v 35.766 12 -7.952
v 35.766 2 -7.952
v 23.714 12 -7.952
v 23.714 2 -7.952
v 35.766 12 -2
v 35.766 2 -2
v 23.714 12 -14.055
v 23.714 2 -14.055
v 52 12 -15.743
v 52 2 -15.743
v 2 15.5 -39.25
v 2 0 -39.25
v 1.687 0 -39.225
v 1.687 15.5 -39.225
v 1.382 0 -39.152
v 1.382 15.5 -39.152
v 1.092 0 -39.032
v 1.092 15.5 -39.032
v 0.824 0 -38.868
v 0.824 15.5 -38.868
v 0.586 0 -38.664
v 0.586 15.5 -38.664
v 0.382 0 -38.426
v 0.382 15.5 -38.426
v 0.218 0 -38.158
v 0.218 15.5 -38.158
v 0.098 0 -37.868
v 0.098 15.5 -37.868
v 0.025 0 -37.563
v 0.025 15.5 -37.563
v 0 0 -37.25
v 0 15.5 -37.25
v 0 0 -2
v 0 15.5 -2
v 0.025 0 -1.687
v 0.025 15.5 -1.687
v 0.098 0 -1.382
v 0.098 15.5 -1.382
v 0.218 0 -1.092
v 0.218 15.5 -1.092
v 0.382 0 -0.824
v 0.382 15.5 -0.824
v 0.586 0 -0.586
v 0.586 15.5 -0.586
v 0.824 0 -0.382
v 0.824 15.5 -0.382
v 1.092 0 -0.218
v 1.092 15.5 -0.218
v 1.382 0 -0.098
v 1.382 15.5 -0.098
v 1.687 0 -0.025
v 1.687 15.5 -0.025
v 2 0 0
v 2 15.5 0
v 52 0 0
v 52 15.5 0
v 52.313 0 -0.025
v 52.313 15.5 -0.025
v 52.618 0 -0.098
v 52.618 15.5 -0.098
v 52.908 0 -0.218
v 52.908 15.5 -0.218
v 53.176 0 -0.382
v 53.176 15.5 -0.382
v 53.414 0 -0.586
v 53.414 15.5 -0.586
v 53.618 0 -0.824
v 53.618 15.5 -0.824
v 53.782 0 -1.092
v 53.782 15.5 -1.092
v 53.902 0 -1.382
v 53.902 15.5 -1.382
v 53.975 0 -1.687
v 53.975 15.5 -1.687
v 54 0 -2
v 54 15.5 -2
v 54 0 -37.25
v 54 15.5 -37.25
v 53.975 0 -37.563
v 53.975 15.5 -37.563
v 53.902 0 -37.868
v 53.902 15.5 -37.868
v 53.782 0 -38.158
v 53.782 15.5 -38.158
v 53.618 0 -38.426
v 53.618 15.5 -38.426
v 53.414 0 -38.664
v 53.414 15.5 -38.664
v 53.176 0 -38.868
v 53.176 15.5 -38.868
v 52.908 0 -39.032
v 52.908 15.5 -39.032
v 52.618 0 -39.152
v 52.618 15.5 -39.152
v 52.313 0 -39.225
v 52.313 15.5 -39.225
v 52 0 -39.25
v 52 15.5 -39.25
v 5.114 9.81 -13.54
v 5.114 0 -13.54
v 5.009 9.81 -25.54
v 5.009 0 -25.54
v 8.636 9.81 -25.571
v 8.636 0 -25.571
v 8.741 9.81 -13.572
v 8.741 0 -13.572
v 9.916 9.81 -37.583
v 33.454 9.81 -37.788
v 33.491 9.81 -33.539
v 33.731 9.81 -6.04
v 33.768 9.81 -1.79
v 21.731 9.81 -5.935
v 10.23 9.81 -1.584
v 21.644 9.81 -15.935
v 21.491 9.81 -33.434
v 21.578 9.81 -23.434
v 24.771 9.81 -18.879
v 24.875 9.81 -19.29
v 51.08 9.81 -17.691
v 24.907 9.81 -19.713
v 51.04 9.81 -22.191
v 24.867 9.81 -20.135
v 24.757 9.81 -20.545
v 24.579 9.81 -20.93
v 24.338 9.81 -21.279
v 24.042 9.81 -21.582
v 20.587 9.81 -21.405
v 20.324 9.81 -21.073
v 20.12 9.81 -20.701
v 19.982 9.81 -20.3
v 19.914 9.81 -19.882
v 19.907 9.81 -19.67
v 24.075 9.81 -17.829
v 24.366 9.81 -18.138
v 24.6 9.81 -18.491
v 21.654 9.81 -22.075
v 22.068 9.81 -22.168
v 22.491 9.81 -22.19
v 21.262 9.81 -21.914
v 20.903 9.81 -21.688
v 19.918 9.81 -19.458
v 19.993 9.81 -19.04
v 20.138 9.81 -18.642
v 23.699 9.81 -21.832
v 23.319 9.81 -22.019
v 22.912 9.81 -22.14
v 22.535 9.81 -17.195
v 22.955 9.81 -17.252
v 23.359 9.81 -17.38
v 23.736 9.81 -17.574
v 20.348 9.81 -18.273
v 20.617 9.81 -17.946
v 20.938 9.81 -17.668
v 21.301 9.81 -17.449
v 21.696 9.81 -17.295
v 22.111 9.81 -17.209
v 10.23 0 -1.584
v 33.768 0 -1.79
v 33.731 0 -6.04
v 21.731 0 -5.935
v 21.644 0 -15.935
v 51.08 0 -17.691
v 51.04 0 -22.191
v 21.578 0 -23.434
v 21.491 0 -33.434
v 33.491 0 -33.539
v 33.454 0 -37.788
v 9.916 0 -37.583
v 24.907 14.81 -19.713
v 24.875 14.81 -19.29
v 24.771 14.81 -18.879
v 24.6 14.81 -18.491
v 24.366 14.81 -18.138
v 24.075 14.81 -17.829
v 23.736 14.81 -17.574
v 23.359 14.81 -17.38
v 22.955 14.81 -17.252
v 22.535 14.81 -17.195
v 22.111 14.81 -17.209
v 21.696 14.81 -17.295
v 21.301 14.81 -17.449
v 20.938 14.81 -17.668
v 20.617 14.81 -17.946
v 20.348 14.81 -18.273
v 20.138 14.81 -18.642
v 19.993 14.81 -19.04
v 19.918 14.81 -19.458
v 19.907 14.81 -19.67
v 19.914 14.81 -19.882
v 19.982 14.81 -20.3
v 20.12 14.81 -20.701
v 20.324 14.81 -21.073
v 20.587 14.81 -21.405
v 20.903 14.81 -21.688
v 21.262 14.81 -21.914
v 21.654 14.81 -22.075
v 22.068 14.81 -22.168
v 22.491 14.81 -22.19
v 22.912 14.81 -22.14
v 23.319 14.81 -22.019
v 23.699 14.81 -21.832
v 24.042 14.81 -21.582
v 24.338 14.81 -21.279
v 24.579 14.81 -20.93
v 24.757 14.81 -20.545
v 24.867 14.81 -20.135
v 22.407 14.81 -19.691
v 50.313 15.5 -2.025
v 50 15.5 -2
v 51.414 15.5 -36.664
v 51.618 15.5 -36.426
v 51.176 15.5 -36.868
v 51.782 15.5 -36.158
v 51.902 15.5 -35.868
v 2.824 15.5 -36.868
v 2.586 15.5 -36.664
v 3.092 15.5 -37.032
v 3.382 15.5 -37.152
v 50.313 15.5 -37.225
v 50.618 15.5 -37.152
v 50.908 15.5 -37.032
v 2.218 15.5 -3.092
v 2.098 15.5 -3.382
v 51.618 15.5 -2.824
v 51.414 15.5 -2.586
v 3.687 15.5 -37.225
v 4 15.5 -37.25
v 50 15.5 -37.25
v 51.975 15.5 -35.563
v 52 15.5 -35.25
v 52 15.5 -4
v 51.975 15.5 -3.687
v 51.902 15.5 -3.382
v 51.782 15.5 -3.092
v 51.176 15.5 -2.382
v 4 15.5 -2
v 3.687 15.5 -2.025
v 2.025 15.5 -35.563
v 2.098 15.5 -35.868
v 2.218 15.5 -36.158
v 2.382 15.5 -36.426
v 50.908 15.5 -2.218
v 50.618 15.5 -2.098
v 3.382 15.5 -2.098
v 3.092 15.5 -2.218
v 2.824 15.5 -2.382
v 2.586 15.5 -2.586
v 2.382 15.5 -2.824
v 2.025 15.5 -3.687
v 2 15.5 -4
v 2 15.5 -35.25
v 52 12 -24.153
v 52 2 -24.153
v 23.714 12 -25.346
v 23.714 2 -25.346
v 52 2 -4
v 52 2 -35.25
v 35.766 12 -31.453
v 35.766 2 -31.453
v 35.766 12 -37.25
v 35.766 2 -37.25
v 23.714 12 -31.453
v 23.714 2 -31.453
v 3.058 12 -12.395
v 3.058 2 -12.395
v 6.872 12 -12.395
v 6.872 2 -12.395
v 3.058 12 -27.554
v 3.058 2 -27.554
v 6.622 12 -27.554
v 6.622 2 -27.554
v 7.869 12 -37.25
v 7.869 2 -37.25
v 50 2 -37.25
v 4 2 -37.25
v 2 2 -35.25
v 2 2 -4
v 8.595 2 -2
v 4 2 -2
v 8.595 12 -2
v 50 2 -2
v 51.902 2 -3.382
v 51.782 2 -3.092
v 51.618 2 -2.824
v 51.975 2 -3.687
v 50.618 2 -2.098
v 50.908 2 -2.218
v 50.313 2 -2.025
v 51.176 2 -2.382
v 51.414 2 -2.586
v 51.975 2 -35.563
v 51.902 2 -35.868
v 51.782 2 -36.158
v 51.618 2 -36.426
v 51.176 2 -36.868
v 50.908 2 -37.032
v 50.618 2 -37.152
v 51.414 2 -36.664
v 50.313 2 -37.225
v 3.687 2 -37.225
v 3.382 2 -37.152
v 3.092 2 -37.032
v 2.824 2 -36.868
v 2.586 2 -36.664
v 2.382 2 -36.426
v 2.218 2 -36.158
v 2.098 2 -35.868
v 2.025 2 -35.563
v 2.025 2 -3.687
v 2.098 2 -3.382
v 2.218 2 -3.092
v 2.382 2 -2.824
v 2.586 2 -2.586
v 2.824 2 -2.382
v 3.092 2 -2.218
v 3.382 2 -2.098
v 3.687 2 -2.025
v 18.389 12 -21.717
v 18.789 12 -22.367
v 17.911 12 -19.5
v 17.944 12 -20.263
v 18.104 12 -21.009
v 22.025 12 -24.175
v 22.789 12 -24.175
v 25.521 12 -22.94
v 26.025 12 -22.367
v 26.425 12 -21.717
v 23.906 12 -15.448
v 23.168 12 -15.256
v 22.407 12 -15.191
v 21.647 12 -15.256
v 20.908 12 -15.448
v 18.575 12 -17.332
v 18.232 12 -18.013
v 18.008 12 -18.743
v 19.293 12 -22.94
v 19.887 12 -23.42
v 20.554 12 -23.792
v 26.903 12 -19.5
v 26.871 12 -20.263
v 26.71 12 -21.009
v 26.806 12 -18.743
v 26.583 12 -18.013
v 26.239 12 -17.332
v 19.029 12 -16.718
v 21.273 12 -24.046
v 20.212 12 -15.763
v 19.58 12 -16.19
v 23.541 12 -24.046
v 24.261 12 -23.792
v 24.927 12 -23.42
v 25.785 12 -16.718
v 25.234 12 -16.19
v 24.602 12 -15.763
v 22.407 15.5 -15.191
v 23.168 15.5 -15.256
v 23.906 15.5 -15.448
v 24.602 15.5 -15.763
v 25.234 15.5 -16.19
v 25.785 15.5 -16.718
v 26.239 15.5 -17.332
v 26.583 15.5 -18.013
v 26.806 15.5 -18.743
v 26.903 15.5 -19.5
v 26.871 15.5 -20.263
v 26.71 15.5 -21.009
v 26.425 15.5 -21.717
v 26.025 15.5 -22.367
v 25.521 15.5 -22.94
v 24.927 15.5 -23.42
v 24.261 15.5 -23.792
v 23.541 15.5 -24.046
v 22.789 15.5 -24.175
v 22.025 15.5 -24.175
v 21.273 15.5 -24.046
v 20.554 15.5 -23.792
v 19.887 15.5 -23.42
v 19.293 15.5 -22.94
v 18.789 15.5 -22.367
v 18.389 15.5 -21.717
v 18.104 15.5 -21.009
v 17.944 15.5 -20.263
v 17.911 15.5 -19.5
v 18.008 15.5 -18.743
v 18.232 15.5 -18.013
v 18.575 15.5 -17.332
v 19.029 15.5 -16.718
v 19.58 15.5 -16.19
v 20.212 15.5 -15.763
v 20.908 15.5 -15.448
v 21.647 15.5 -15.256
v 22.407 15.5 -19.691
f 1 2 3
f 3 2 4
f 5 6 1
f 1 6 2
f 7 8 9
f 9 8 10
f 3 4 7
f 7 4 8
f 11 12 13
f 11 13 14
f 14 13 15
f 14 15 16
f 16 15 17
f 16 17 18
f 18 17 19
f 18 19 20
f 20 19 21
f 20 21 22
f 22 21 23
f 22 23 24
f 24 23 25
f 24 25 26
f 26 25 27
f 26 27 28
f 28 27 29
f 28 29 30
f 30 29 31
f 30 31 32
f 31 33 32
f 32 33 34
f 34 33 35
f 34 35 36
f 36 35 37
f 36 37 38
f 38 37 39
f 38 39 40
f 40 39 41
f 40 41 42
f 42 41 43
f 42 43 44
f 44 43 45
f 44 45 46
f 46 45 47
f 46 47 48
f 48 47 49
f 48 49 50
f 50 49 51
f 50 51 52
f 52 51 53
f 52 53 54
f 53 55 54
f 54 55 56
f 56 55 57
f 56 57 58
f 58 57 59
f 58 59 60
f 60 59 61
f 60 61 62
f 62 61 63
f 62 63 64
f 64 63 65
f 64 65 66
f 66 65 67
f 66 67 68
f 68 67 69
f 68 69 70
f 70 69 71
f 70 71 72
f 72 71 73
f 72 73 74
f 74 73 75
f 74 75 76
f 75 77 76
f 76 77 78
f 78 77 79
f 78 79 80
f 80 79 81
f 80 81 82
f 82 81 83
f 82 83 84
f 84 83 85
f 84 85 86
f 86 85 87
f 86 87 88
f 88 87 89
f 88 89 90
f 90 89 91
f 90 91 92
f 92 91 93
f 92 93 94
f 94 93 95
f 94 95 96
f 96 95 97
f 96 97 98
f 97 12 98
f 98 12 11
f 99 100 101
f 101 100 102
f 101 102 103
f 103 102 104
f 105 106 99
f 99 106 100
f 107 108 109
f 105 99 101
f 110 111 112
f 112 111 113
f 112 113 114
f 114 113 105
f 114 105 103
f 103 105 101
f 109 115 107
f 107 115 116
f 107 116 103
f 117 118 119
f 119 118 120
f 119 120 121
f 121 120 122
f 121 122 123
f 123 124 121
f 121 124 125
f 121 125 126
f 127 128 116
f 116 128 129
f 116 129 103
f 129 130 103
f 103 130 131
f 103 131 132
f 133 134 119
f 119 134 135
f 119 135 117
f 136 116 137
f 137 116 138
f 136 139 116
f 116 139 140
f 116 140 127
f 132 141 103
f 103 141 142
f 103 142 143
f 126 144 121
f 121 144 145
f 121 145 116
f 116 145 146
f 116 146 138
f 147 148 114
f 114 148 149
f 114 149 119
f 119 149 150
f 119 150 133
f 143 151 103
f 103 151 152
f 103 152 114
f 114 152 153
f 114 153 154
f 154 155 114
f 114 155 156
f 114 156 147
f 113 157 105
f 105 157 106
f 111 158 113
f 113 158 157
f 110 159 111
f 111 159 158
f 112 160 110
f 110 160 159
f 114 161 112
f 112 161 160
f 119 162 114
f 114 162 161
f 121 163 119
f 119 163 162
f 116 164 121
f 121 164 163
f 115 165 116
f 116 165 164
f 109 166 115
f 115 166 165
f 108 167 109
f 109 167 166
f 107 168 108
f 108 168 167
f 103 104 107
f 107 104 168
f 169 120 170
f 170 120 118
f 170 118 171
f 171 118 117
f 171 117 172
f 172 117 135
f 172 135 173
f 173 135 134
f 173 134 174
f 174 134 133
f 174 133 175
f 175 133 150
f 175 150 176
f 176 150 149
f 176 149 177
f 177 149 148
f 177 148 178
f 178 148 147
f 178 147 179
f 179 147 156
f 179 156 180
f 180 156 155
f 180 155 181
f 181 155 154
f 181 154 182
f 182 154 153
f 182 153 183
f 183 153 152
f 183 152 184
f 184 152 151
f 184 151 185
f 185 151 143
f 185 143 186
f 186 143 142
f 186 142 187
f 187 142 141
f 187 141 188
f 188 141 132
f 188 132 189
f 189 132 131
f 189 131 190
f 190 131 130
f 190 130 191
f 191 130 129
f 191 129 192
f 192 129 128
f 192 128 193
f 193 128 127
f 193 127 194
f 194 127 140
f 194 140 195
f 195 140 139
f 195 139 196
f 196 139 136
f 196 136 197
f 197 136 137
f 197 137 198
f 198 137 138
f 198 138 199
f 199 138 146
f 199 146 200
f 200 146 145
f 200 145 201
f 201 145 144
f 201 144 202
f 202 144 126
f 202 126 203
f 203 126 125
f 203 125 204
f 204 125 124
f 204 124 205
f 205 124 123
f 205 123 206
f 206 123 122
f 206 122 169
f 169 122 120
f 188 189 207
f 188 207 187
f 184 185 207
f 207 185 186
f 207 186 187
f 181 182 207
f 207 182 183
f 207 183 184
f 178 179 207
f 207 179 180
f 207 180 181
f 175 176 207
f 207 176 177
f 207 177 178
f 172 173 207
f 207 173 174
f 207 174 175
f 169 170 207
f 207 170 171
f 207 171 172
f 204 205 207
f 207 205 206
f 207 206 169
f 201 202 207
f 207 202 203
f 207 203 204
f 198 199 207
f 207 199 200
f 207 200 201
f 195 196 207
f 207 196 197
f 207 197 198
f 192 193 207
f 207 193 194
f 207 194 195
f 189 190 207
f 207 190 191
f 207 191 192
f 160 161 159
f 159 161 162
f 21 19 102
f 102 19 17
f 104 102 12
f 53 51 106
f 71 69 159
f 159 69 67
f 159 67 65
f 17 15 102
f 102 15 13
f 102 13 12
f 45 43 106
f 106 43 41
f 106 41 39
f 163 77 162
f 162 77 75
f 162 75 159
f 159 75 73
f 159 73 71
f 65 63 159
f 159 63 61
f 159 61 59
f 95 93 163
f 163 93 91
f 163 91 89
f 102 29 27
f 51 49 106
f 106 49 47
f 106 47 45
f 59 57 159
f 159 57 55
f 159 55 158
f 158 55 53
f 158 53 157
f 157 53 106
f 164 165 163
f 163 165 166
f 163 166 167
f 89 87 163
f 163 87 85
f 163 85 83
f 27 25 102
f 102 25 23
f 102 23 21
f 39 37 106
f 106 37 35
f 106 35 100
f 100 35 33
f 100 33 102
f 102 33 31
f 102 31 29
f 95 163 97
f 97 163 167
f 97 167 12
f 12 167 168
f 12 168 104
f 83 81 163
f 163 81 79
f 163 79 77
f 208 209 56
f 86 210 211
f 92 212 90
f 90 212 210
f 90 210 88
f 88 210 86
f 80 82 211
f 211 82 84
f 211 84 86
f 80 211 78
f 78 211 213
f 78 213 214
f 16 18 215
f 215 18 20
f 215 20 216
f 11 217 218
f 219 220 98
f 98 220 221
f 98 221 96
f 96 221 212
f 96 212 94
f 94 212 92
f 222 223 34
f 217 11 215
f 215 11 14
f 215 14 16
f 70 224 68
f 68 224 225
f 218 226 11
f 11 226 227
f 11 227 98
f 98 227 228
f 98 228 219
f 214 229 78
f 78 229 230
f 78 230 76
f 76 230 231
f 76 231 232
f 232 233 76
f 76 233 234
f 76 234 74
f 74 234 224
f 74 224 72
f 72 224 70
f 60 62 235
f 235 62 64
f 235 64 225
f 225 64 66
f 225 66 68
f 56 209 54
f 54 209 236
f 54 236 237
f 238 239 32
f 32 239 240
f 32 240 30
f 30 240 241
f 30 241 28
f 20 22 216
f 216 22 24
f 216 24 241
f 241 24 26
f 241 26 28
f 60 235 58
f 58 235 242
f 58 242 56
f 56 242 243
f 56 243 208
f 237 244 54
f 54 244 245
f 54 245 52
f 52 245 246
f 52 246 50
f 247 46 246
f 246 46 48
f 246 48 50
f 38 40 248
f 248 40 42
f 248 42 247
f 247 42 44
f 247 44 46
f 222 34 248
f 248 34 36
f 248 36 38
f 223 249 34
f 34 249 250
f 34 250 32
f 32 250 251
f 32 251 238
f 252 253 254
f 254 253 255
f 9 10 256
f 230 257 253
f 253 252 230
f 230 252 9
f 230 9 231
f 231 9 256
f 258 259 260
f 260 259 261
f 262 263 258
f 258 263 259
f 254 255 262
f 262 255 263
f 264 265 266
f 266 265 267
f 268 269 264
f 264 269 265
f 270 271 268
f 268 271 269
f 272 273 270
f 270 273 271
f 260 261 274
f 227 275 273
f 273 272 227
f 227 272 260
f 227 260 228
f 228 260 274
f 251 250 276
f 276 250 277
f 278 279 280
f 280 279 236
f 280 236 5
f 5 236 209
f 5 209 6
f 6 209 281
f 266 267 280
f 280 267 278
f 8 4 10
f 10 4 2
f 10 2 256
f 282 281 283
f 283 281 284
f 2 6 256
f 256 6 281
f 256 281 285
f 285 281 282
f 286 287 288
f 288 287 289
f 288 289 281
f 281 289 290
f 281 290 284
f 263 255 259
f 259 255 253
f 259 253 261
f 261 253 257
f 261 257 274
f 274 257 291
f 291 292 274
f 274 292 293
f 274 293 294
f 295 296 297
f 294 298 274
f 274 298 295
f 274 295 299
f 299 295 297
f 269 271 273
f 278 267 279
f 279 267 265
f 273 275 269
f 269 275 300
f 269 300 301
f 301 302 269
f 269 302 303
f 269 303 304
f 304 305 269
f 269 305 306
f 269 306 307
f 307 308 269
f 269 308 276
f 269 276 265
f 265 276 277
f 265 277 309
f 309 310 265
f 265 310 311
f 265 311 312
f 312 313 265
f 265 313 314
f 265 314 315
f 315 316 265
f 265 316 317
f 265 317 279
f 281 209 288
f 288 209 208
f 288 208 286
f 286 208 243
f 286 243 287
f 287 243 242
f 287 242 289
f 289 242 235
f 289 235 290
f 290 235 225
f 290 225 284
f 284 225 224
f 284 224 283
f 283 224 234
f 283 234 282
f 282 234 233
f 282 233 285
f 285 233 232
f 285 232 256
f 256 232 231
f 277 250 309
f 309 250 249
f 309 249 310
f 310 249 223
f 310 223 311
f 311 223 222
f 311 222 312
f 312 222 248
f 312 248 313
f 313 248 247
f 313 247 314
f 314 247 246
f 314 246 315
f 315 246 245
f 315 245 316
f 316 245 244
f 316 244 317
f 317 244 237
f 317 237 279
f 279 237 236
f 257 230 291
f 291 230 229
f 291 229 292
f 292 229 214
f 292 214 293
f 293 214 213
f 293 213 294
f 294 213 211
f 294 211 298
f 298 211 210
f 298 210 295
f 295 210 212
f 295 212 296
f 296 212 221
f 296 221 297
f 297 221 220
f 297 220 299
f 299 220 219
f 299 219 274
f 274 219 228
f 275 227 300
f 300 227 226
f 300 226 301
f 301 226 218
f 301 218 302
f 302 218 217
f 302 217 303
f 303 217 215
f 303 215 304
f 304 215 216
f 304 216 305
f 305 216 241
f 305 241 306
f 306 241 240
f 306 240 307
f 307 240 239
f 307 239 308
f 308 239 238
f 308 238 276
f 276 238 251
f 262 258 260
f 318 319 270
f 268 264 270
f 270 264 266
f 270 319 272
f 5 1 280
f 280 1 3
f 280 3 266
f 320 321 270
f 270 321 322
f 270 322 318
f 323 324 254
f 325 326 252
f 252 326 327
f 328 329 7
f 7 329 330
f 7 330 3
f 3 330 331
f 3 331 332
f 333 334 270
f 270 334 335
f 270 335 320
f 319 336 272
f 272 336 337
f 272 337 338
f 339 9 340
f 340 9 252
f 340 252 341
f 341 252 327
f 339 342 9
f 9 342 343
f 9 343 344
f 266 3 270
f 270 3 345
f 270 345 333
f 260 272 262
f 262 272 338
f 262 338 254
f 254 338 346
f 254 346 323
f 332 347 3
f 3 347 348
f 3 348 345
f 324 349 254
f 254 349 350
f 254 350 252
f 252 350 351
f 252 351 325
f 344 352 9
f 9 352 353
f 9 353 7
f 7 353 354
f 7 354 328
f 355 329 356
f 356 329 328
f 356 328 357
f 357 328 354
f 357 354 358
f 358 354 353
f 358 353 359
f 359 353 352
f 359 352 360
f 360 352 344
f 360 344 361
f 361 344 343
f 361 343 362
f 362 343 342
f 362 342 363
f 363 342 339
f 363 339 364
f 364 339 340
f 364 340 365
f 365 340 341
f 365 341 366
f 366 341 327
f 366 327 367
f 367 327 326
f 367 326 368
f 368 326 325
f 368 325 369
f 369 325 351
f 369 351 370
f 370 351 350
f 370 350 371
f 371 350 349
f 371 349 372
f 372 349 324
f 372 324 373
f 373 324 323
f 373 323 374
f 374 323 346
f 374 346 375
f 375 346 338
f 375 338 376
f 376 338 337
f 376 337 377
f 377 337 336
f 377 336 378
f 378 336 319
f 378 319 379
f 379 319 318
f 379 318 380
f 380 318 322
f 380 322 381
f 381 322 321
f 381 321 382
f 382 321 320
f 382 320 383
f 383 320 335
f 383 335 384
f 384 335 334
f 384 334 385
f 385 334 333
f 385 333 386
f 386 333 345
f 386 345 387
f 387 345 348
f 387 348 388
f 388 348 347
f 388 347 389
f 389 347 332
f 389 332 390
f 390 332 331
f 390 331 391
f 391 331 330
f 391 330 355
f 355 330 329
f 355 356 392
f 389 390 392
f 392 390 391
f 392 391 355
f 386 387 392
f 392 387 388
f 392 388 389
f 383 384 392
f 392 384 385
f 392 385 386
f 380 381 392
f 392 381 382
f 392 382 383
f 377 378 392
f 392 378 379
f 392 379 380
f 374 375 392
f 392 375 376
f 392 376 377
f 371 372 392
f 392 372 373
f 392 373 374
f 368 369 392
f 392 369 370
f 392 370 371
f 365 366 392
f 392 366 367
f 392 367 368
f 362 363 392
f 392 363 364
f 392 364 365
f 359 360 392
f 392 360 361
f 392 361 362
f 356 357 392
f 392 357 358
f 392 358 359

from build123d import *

# Parameters (mm, degrees)
SKETCH1_W              = 54
SKETCH1_H              = 39.25
BOSS_EXTRUDE1_DEPTH    = 46.5
FILLET1_R              = 2
FILLET2_R              = 2
Z_95_START             = -0.023652431
Z_95_BLANK_DEPTH       = 10
Z_95_START_2           = -5.023652431
Z_95_BLANK_2_OUTLINE_R = 2.5
Z_95_BLANK_2_DEPTH     = 5
BODY_MOVE_COPY3_ANGLE  = 180
BODY_MOVE_COPY4_ANGLE  = 89.5
SKETCH4_W              = 54
SKETCH4_H              = 39.25
CUT_EXTRUDE1_DEPTH     = 31
CUT_EXTRUDE2_DEPTH     = 31
BOSS_EXTRUDE2_DEPTH    = 2
FILLET3_R              = 2
FILLET4_R              = 2
FILLET5_R              = 2
FILLET6_R              = 2
SKETCH7_R              = 4.5
CUT_EXTRUDE3_DEPTH     = 3.5


with BuildPart() as part:
    # Sketch1 → Boss-Extrude1 (new body)
    with BuildSketch(Plane(origin=(0, 0, 0), x_dir=(1, 0, 0), z_dir=(0, 1, 0))):
        with Locations((27, 19.625)):
            Rectangle(SKETCH1_W, SKETCH1_H)
    extrude(amount=BOSS_EXTRUDE1_DEPTH)

    # Fillet1
    fillet1_edges = [part.edges().sort_by_distance(p)[0] for p in [
        (0, 23.25, 0),
    ]]
    fillet(fillet1_edges, radius=FILLET1_R)

    # Fillet2
    fillet2_edges = [part.edges().sort_by_distance(p)[0] for p in [
        (0, 23.25, -39.25),
        (54, 23.25, -39.25),
        (54, 23.25, 0),
    ]]
    fillet(fillet2_edges, radius=FILLET2_R)


with BuildPart() as body_2:
    # Z-95 Blank: read off the stored shape, not the designer's step
    # Z-95 Blank outline → Z-95 Blank (new body)
    with BuildSketch(Plane(origin=(0, 0, 0), x_dir=(1, 0, 0), z_dir=(0, 1, 0)).offset(Z_95_START)):
        Polygon((-39.475833264, 51.689675598), (-39.475833264, 48.062948495), (-51.475833264, 46.678320586), (-51.475833264, 23.139646129), (-47.225833264, 23.139646129), (-47.225833264, 35.139646129), (-37.225833264, 35.139646129), (-35.725833264, 5.689675598), (-31.225833264, 5.689675598), (-29.725833264, 35.139646129), (-19.725833264, 35.139646129), (-19.725833264, 23.139646129), (-15.475833264, 23.139646129), (-15.475833264, 46.678320586), (-27.475833264, 48.062948495), (-27.475833264, 51.689675598), align=None)
    extrude(amount=Z_95_BLANK_DEPTH)

    # Z-95 Blank 2 outline → Z-95 Blank 2 (add)
    with BuildSketch(Plane(origin=(0, 0, 0), x_dir=(1, 0, 0), z_dir=(0, 1, 0)).offset(Z_95_START_2)):
        with Locations((-33.475833264, 34.343753809)):
            Circle(Z_95_BLANK_2_OUTLINE_R)
    extrude(amount=Z_95_BLANK_2_DEPTH)


with BuildPart() as body_2_1:
    # Body-Move/Copy3: moved
    add(body_2.part.rotate(Axis((0, 2.476347569, -28.689675598), (1, 0, 0)), BODY_MOVE_COPY3_ANGLE))


with BuildPart() as body_2_2:
    # Body-Move/Copy4: moved
    add(body_2_1.part.rotate(Axis((-33.475833264, 0, -28.689675598), (0, -1, 0)), BODY_MOVE_COPY4_ANGLE))


with BuildPart() as body_2_3:
    # Body-Move/Copy5: moved
    add(body_2_2.part.moved(Location((61.536777905, 5.06338101, 8.948981511))))


with BuildPart() as body_2_4:
    # Body-Move/Copy6: moved
    add(body_2_3.part.moved(Location((0, -0.229742035, 0))))


with BuildPart() as part_1:
    add(part.part)

    # Intersect1: read off the stored shape, not the designer's step
    # Intersect1: cut body 2
    add(body_2_4.part, mode=Mode.SUBTRACT)

    # Sketch4 → Cut-Extrude1 (cut)
    with BuildSketch(Plane(origin=(0, 46.5, 0), x_dir=(1, 0, 0), z_dir=(0, 1, 0))):
        with Locations((27, 19.625)):
            Rectangle(SKETCH4_W, SKETCH4_H)
    extrude(amount=-CUT_EXTRUDE1_DEPTH, mode=Mode.SUBTRACT)

    # Sketch5 → Cut-Extrude2 (cut)
    with BuildSketch(Plane(origin=(0, 0, 0), x_dir=(-1, 0, 0), z_dir=(0, -1, 0))):
        Polygon((-23.713680343, 7.952308665), (-23.713680343, 14.054528407), (-52, 15.742860627), (-52, 2), (-35.766082295, 2), (-35.766082295, 7.952308665), align=None)
        Polygon((-23.713680343, 25.345964802), (-23.713680343, 31.453203507), (-35.766082295, 31.453203507), (-35.766082295, 37.25), (-52, 37.25), (-52, 24.152615413), align=None)
        Polygon((-6.871546498, 12.395456139), (-8.594812047, 2), (-2, 2), (-2, 37.25), (-7.869100925, 37.25), (-6.622123507, 27.553904956), (-3.057950712, 27.553904956), (-3.057950712, 12.395456139), align=None)
    extrude(amount=-CUT_EXTRUDE2_DEPTH, mode=Mode.SUBTRACT)

    # Sketch6 → Boss-Extrude2 (add)
    with BuildSketch(Plane.XZ):
        Polygon((52, -24.152615413), (23.713680343, -25.345964802), (23.713680343, -31.453203507), (35.766082295, -31.453203507), (35.766082295, -37.25), (52, -37.25), align=None)
        Polygon((52, -15.742860627), (23.713680343, -14.054528407), (23.713680343, -7.952308665), (35.766082295, -7.952308665), (35.766082295, -2), (52, -2), align=None)
        Polygon((8.594812047, -2), (6.871546498, -12.395456139), (3.057950712, -12.395456139), (3.057950712, -27.553904956), (6.622123507, -27.553904956), (7.869100925, -37.25), (2, -37.25), (2, -2), align=None)
    extrude(amount=-BOSS_EXTRUDE2_DEPTH)

    # Fillet3
    fillet3_edges = [part_1.edges().sort_by_distance(p)[0] for p in [
        (52, 8.75, -2),
    ]]
    fillet(fillet3_edges, radius=FILLET3_R)

    # Fillet4
    fillet4_edges = [part_1.edges().sort_by_distance(p)[0] for p in [
        (2, 8.75, -2),
    ]]
    fillet(fillet4_edges, radius=FILLET4_R)

    # Fillet5
    fillet5_edges = [part_1.edges().sort_by_distance(p)[0] for p in [
        (52, 8.75, -37.25),
    ]]
    fillet(fillet5_edges, radius=FILLET5_R)

    # Fillet6
    fillet6_edges = [part_1.edges().sort_by_distance(p)[0] for p in [
        (2, 8.75, -37.25),
    ]]
    fillet(fillet6_edges, radius=FILLET6_R)

    # Sketch7 → Cut-Extrude3 (cut)
    with BuildSketch(Plane(origin=(0, 15.5, 0), x_dir=(1, 0, 0), z_dir=(0, 1, 0))):
        Polygon((7.869100925, 37.25), (35.766082295, 37.25), (35.766082295, 31.453203507), (23.713680343, 31.453203507), (23.713680343, 25.345964802), (52, 24.152615413), (52, 15.742860627), (23.713680343, 14.054528407), (23.713680343, 7.952308665), (35.766082295, 7.952308665), (35.766082295, 2), (8.594812047, 2), (6.871546498, 12.395456139), (3.057950712, 12.395456139), (3.057950712, 27.553904956), (6.622123507, 27.553904956), align=None)
        with Locations(Location((22.40708172, 19.691353573, 0), (0, 0, 270))):
            Circle(SKETCH7_R, mode=Mode.SUBTRACT)
    extrude(amount=-CUT_EXTRUDE3_DEPTH, mode=Mode.SUBTRACT)


solid = part_1.part
